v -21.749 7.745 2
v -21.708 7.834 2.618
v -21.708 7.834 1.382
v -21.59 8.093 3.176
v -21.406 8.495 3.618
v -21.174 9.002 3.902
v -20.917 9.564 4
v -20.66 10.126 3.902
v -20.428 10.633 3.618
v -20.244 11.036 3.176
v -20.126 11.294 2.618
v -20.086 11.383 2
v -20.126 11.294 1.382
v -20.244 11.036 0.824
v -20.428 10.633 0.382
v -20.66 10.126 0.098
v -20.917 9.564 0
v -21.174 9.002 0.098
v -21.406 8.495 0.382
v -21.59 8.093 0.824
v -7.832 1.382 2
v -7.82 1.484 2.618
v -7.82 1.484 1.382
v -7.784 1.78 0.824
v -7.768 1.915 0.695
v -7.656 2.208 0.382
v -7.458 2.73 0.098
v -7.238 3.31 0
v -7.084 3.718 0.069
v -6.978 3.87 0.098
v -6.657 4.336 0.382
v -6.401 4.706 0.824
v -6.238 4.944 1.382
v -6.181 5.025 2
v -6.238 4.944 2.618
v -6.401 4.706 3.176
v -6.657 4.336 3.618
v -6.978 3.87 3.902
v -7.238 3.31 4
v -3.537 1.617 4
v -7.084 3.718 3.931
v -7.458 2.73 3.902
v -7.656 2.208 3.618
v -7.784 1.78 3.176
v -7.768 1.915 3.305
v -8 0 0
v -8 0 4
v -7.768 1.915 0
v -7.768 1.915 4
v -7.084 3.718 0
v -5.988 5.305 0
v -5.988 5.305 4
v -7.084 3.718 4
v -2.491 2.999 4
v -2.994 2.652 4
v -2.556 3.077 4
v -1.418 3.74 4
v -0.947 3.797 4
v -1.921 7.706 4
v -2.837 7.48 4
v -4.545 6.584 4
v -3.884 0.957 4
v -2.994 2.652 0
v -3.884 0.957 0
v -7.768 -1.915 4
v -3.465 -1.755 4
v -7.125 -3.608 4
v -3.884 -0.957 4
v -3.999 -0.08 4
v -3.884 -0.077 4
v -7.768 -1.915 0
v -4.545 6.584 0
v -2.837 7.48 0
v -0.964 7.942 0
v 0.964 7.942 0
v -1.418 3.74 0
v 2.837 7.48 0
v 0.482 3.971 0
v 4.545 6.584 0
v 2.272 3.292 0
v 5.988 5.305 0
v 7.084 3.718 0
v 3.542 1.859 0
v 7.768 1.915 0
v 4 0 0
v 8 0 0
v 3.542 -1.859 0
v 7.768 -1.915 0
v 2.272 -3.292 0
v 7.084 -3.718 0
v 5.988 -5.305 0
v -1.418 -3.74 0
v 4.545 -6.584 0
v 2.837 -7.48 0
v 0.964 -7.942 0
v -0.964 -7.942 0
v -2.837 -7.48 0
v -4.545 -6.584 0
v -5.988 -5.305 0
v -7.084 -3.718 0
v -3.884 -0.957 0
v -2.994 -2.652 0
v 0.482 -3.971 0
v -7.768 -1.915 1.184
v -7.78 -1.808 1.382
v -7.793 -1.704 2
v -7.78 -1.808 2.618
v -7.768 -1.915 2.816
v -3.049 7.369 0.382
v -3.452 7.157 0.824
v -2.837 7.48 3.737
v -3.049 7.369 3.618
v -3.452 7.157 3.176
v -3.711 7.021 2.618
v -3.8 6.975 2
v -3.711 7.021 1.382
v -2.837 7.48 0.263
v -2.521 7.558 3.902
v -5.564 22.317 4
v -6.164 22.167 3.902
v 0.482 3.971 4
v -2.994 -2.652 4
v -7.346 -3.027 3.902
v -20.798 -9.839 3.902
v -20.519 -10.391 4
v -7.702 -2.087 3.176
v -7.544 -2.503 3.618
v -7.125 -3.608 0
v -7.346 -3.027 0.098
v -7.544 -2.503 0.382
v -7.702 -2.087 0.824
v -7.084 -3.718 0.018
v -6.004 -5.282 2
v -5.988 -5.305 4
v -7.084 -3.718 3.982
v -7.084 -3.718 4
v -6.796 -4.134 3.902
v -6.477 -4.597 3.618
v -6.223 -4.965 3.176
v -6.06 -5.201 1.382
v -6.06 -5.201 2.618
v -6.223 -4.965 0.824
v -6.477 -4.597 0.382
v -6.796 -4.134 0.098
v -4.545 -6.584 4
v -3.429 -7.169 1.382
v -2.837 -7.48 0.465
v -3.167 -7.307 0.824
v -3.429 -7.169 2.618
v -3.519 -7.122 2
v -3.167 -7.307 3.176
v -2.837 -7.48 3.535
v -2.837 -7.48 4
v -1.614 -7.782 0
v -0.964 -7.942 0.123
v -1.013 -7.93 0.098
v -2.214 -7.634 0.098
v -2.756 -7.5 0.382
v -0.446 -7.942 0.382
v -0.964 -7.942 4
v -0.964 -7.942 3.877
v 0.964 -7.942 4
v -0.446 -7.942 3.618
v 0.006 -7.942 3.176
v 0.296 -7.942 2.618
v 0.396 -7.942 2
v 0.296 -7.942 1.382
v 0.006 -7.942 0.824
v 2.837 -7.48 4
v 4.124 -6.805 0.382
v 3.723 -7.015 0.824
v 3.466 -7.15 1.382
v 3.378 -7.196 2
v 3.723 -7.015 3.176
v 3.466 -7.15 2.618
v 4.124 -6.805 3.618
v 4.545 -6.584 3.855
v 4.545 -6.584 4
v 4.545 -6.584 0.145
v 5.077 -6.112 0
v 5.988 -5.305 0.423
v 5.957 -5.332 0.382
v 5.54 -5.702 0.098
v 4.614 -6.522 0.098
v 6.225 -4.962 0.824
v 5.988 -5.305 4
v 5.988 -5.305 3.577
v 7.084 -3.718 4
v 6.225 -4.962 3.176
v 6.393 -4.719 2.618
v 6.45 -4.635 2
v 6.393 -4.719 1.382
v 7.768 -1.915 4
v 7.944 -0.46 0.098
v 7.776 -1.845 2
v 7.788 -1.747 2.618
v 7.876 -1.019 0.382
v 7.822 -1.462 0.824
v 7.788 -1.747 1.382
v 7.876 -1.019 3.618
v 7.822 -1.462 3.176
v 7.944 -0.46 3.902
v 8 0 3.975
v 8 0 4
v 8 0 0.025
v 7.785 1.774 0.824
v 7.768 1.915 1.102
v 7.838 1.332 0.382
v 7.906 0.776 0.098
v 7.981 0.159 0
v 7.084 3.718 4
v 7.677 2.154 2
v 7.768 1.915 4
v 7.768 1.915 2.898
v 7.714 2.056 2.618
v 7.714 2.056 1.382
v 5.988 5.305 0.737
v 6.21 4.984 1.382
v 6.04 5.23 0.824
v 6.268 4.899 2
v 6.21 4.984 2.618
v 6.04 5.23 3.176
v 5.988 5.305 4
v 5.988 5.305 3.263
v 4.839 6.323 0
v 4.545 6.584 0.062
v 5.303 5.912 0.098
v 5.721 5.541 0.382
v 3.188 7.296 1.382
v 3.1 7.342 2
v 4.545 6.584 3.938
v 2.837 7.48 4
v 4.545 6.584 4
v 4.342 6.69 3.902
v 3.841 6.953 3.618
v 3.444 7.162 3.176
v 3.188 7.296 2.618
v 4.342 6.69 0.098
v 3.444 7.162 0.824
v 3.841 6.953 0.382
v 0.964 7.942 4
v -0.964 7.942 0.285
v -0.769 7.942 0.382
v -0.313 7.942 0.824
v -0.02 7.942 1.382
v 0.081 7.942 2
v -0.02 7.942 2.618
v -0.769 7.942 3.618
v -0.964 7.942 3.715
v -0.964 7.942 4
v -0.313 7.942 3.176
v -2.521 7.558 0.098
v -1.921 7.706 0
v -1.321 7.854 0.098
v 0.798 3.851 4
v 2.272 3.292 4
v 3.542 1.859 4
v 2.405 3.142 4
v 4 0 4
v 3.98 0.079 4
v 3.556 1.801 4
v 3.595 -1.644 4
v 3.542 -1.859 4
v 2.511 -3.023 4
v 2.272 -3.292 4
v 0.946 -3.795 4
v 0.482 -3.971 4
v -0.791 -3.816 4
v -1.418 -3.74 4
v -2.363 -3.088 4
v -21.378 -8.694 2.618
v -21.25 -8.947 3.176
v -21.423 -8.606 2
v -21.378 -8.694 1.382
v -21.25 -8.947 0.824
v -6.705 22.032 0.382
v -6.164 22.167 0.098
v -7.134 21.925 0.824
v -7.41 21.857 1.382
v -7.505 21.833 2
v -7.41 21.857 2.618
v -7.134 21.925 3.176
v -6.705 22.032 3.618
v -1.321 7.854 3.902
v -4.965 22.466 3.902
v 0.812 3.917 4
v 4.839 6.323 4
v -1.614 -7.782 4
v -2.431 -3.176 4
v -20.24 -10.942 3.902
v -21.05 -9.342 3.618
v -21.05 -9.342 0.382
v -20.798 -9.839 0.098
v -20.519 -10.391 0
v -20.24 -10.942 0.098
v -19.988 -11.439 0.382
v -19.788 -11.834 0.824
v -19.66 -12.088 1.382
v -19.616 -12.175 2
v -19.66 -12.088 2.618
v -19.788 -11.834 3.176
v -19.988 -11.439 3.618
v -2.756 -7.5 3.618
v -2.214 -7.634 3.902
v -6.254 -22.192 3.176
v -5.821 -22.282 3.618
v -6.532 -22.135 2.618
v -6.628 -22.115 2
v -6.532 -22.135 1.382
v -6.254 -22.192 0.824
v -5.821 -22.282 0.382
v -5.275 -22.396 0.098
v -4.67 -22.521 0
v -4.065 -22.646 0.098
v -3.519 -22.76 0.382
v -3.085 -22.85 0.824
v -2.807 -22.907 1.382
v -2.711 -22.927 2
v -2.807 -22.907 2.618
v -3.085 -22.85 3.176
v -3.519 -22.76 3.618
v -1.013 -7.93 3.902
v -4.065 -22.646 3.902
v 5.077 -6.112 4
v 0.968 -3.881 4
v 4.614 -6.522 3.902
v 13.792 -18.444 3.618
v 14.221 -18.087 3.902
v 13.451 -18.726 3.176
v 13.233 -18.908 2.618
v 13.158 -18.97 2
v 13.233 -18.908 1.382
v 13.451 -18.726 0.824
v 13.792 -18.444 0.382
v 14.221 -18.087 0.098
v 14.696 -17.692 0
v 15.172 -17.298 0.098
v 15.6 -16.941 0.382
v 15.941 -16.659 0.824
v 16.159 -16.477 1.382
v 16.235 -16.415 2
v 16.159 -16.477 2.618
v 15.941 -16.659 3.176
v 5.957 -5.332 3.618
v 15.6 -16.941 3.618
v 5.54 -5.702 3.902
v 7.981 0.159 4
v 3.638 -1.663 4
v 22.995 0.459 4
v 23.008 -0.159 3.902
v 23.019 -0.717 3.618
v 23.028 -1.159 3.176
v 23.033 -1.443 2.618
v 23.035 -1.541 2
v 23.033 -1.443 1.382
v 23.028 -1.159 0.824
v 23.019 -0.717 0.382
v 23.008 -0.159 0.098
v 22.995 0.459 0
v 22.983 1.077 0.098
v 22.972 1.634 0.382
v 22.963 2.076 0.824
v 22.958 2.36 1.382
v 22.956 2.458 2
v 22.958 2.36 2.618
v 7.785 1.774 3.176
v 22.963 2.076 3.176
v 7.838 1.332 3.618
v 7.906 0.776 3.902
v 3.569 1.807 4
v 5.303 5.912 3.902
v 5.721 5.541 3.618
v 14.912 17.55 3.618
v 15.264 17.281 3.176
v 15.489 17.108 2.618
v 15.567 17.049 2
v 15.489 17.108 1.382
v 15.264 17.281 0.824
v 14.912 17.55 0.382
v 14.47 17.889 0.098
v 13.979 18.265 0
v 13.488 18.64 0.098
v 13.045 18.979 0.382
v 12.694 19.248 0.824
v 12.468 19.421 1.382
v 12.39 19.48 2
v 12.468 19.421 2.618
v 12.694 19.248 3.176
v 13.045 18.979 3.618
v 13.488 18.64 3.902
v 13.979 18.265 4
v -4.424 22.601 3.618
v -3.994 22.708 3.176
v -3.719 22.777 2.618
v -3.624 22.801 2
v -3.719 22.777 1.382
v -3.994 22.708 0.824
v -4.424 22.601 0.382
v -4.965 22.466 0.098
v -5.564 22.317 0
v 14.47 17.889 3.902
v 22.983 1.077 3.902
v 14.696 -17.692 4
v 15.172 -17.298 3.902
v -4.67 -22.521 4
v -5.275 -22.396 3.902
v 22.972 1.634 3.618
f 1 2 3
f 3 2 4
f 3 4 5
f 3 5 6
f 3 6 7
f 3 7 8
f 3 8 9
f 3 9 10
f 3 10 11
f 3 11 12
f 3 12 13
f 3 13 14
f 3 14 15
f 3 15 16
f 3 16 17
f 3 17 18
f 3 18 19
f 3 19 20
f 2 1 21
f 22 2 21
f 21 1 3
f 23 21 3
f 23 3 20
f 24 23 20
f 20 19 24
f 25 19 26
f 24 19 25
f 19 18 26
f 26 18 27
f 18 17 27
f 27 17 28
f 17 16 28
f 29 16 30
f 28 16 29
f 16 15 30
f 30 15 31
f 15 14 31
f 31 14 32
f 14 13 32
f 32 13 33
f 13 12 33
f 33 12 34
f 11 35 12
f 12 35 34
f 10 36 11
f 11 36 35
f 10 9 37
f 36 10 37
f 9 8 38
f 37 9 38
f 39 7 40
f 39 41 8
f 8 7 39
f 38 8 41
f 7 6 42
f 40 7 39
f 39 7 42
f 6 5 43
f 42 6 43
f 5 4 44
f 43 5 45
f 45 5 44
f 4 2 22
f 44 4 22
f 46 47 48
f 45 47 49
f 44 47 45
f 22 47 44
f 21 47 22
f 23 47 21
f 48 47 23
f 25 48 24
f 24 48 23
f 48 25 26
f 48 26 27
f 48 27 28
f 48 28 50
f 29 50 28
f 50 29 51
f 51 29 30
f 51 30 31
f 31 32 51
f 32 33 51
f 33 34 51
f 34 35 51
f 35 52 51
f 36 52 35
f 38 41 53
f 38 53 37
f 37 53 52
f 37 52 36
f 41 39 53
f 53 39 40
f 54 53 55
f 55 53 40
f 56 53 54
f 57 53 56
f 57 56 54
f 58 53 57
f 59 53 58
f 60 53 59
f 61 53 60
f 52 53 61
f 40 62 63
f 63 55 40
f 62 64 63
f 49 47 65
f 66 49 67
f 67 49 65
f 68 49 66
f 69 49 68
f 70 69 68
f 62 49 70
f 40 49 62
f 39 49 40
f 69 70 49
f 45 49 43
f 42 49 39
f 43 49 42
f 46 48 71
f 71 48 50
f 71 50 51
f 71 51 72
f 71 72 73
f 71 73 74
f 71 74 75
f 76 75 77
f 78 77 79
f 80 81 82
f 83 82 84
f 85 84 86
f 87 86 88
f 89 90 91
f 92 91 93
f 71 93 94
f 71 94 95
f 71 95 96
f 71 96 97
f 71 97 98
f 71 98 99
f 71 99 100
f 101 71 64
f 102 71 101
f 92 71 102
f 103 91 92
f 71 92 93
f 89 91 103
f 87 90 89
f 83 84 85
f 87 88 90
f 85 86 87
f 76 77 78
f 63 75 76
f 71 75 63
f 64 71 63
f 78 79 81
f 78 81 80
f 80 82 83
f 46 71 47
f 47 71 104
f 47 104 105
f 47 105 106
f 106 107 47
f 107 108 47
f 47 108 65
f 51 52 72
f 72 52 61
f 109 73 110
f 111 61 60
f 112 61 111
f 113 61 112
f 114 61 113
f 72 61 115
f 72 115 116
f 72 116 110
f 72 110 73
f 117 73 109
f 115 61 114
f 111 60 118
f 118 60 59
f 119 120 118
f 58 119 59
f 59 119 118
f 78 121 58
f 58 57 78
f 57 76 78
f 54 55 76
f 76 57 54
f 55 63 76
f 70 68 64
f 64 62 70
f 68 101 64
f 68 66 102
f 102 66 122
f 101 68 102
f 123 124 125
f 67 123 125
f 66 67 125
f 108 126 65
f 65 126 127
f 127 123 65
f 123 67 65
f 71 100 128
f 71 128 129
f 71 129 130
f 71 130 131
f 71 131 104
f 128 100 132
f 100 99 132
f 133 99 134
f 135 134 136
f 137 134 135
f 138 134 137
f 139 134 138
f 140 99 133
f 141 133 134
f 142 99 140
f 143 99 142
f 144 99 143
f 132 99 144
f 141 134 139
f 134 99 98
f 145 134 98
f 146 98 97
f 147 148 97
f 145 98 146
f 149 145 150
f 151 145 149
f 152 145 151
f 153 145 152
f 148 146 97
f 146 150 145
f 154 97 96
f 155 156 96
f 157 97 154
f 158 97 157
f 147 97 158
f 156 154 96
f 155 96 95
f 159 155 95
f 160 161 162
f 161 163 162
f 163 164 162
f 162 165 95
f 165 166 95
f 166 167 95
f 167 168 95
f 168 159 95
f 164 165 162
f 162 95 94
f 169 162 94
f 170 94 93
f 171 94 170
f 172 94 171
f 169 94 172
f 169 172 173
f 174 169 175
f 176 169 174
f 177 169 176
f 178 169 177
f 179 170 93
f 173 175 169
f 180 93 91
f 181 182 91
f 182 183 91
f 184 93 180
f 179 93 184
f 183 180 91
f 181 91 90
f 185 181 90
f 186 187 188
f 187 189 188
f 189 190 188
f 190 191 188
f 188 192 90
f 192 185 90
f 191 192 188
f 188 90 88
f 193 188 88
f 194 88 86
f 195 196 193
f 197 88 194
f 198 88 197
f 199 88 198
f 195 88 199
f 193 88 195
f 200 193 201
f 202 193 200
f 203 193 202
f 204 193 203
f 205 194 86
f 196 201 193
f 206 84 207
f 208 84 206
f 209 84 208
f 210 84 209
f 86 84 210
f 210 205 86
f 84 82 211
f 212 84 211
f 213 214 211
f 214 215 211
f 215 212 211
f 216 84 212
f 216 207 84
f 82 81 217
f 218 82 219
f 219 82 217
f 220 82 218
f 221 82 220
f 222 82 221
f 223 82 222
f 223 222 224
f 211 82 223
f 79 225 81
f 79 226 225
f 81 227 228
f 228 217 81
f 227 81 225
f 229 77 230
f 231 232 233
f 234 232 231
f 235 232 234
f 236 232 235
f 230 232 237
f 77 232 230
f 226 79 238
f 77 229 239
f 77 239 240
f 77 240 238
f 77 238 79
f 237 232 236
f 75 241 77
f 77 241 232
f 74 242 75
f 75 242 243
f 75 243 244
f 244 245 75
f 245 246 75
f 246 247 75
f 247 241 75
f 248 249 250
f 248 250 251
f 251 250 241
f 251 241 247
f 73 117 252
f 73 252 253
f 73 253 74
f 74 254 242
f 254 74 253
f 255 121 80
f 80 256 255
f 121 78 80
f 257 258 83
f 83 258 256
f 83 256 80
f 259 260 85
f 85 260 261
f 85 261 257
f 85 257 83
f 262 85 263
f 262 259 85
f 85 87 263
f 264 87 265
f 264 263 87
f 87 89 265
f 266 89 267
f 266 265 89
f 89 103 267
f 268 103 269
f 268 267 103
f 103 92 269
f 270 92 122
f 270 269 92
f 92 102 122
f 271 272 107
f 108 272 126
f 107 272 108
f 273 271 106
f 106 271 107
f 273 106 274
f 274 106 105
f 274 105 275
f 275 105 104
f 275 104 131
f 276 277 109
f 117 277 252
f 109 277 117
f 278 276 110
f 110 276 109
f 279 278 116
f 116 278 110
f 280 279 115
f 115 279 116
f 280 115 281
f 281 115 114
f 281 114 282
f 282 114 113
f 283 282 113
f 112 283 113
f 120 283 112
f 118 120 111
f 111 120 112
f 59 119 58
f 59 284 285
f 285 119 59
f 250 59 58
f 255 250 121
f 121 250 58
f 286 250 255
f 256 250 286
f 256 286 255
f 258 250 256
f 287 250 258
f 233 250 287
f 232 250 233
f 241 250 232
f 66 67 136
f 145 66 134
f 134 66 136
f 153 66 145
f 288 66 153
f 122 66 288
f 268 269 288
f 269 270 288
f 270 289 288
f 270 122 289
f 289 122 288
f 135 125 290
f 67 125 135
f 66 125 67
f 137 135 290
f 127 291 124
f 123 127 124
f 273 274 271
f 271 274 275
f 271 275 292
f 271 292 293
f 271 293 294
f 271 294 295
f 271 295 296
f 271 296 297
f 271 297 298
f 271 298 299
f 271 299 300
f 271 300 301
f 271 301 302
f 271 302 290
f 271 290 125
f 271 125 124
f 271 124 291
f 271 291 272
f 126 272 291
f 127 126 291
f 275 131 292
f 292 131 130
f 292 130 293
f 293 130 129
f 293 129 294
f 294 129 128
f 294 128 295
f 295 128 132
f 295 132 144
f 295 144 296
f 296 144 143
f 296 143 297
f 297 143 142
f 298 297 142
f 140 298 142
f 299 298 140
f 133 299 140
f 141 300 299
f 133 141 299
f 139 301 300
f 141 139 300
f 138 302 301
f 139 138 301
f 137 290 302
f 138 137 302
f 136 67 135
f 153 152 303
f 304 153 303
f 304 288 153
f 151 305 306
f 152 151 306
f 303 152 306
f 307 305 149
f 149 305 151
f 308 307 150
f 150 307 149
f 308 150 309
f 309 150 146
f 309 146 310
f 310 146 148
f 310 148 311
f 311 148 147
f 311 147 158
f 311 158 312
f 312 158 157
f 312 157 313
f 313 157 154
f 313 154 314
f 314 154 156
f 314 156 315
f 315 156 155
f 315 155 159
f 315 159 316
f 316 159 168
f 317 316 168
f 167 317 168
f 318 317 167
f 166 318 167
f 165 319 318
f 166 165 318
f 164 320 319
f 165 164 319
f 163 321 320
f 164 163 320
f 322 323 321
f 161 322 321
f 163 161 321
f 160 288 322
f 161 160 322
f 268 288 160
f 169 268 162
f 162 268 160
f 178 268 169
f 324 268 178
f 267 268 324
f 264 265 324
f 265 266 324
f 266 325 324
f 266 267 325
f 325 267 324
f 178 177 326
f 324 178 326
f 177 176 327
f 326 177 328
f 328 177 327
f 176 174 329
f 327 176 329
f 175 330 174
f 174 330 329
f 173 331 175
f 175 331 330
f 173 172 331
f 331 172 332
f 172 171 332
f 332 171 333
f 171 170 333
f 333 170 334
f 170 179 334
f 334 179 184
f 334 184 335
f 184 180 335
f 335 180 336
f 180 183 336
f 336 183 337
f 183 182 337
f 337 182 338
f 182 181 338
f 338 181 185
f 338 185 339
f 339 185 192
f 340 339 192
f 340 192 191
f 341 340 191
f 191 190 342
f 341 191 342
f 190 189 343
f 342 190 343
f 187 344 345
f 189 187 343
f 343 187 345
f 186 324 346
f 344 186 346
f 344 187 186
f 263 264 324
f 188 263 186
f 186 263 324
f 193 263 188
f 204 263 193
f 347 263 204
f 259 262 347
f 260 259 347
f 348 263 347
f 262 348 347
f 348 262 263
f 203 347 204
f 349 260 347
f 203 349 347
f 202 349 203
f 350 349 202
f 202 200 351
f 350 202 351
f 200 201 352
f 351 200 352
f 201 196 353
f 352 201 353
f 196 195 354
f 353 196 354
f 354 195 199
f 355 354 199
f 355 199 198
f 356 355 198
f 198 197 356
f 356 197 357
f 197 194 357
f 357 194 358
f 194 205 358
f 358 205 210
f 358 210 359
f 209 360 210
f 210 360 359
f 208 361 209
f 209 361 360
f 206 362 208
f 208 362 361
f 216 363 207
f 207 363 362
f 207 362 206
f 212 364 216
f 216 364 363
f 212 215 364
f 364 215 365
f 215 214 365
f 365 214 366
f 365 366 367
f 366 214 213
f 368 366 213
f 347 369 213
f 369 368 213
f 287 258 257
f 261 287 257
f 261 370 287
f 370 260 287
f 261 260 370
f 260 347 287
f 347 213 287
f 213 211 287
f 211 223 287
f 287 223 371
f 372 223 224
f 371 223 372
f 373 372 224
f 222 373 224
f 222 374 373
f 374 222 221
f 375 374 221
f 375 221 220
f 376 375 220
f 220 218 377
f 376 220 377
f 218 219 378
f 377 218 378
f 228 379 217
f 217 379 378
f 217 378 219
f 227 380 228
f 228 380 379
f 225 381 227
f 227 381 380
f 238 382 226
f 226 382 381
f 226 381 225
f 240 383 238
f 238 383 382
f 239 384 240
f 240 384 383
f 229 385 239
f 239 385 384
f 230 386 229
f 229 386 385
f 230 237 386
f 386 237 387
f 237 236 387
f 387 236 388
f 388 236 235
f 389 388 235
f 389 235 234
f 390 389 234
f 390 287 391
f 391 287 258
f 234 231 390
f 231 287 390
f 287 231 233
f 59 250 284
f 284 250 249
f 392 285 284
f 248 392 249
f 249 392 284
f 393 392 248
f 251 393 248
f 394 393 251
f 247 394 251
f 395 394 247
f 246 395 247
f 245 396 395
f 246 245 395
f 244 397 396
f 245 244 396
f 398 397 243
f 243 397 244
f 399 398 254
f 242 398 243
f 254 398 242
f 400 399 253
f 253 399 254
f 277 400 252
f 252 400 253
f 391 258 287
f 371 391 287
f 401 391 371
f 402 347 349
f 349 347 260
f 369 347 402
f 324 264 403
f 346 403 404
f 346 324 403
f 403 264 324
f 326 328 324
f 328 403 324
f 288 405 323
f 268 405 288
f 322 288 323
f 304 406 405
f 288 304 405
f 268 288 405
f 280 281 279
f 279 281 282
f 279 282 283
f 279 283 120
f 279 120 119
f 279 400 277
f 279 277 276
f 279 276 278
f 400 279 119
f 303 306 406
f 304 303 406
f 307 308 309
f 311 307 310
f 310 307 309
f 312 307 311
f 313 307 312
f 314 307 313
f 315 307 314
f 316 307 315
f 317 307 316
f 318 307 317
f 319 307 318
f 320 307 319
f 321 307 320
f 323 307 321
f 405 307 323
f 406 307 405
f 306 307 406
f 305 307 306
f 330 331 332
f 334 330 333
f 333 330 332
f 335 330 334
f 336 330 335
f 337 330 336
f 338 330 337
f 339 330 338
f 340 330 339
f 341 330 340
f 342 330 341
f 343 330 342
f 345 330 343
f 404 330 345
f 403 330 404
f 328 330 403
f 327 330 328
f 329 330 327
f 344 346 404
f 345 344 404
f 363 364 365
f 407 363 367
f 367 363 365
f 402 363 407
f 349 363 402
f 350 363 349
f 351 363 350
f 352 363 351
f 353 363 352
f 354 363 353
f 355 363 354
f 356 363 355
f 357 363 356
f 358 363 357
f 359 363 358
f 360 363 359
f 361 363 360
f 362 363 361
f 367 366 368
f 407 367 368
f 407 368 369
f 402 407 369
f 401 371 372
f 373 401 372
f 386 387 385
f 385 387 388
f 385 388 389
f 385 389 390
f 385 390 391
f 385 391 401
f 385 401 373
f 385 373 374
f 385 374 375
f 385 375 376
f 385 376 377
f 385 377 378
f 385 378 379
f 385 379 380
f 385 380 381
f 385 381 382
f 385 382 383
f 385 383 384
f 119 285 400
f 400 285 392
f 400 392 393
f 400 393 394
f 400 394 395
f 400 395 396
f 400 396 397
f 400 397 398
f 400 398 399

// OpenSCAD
use<MCAD/2Dshapes.scad>

numbgears=7;
holerad=23;//should be axle gear rad+some extra. Will take some fiddling to find out exactly how much bigger.
shaftsize=4;//radius obviously...
caserad=holerad+3;//The radius of the outside of the case

basethick=5;//how thick the base is.
height=basethick+10;//How tall one half is.

pinrad=2;//How thick the pins that hold the gears to the body are
pinrot=14;//Edit this manually until the pins line up with the sides. I really should figure out how to do this automatically, or perhaps just rewrite ngon so it uses the same rotation method. For 7 sides it's 15



//	translate([0,0,-1])cylinder(h = basethick+2, r=shaftsize);
difference(){
//union all the spokes to a center cylinder
union(){
cylinder(h = pinrad*2, r=8);
	//This creates the holes for all the pins.
	rotate([0,0,pinrot])translate([0,0,2])for ( i = [0 : numbgears] )
	{
	    rotate( i * 360 / numbgears, [0, 0, 1])
	    translate([0, caserad-(caserad-holerad), 0])
	    rotate([90,0,0])cylinder(h = basethick+2+20, r=pinrad,$fn=20);
}}
translate([0,0,-1])cylinder(h = basethick+2, r=shaftsize);
};
